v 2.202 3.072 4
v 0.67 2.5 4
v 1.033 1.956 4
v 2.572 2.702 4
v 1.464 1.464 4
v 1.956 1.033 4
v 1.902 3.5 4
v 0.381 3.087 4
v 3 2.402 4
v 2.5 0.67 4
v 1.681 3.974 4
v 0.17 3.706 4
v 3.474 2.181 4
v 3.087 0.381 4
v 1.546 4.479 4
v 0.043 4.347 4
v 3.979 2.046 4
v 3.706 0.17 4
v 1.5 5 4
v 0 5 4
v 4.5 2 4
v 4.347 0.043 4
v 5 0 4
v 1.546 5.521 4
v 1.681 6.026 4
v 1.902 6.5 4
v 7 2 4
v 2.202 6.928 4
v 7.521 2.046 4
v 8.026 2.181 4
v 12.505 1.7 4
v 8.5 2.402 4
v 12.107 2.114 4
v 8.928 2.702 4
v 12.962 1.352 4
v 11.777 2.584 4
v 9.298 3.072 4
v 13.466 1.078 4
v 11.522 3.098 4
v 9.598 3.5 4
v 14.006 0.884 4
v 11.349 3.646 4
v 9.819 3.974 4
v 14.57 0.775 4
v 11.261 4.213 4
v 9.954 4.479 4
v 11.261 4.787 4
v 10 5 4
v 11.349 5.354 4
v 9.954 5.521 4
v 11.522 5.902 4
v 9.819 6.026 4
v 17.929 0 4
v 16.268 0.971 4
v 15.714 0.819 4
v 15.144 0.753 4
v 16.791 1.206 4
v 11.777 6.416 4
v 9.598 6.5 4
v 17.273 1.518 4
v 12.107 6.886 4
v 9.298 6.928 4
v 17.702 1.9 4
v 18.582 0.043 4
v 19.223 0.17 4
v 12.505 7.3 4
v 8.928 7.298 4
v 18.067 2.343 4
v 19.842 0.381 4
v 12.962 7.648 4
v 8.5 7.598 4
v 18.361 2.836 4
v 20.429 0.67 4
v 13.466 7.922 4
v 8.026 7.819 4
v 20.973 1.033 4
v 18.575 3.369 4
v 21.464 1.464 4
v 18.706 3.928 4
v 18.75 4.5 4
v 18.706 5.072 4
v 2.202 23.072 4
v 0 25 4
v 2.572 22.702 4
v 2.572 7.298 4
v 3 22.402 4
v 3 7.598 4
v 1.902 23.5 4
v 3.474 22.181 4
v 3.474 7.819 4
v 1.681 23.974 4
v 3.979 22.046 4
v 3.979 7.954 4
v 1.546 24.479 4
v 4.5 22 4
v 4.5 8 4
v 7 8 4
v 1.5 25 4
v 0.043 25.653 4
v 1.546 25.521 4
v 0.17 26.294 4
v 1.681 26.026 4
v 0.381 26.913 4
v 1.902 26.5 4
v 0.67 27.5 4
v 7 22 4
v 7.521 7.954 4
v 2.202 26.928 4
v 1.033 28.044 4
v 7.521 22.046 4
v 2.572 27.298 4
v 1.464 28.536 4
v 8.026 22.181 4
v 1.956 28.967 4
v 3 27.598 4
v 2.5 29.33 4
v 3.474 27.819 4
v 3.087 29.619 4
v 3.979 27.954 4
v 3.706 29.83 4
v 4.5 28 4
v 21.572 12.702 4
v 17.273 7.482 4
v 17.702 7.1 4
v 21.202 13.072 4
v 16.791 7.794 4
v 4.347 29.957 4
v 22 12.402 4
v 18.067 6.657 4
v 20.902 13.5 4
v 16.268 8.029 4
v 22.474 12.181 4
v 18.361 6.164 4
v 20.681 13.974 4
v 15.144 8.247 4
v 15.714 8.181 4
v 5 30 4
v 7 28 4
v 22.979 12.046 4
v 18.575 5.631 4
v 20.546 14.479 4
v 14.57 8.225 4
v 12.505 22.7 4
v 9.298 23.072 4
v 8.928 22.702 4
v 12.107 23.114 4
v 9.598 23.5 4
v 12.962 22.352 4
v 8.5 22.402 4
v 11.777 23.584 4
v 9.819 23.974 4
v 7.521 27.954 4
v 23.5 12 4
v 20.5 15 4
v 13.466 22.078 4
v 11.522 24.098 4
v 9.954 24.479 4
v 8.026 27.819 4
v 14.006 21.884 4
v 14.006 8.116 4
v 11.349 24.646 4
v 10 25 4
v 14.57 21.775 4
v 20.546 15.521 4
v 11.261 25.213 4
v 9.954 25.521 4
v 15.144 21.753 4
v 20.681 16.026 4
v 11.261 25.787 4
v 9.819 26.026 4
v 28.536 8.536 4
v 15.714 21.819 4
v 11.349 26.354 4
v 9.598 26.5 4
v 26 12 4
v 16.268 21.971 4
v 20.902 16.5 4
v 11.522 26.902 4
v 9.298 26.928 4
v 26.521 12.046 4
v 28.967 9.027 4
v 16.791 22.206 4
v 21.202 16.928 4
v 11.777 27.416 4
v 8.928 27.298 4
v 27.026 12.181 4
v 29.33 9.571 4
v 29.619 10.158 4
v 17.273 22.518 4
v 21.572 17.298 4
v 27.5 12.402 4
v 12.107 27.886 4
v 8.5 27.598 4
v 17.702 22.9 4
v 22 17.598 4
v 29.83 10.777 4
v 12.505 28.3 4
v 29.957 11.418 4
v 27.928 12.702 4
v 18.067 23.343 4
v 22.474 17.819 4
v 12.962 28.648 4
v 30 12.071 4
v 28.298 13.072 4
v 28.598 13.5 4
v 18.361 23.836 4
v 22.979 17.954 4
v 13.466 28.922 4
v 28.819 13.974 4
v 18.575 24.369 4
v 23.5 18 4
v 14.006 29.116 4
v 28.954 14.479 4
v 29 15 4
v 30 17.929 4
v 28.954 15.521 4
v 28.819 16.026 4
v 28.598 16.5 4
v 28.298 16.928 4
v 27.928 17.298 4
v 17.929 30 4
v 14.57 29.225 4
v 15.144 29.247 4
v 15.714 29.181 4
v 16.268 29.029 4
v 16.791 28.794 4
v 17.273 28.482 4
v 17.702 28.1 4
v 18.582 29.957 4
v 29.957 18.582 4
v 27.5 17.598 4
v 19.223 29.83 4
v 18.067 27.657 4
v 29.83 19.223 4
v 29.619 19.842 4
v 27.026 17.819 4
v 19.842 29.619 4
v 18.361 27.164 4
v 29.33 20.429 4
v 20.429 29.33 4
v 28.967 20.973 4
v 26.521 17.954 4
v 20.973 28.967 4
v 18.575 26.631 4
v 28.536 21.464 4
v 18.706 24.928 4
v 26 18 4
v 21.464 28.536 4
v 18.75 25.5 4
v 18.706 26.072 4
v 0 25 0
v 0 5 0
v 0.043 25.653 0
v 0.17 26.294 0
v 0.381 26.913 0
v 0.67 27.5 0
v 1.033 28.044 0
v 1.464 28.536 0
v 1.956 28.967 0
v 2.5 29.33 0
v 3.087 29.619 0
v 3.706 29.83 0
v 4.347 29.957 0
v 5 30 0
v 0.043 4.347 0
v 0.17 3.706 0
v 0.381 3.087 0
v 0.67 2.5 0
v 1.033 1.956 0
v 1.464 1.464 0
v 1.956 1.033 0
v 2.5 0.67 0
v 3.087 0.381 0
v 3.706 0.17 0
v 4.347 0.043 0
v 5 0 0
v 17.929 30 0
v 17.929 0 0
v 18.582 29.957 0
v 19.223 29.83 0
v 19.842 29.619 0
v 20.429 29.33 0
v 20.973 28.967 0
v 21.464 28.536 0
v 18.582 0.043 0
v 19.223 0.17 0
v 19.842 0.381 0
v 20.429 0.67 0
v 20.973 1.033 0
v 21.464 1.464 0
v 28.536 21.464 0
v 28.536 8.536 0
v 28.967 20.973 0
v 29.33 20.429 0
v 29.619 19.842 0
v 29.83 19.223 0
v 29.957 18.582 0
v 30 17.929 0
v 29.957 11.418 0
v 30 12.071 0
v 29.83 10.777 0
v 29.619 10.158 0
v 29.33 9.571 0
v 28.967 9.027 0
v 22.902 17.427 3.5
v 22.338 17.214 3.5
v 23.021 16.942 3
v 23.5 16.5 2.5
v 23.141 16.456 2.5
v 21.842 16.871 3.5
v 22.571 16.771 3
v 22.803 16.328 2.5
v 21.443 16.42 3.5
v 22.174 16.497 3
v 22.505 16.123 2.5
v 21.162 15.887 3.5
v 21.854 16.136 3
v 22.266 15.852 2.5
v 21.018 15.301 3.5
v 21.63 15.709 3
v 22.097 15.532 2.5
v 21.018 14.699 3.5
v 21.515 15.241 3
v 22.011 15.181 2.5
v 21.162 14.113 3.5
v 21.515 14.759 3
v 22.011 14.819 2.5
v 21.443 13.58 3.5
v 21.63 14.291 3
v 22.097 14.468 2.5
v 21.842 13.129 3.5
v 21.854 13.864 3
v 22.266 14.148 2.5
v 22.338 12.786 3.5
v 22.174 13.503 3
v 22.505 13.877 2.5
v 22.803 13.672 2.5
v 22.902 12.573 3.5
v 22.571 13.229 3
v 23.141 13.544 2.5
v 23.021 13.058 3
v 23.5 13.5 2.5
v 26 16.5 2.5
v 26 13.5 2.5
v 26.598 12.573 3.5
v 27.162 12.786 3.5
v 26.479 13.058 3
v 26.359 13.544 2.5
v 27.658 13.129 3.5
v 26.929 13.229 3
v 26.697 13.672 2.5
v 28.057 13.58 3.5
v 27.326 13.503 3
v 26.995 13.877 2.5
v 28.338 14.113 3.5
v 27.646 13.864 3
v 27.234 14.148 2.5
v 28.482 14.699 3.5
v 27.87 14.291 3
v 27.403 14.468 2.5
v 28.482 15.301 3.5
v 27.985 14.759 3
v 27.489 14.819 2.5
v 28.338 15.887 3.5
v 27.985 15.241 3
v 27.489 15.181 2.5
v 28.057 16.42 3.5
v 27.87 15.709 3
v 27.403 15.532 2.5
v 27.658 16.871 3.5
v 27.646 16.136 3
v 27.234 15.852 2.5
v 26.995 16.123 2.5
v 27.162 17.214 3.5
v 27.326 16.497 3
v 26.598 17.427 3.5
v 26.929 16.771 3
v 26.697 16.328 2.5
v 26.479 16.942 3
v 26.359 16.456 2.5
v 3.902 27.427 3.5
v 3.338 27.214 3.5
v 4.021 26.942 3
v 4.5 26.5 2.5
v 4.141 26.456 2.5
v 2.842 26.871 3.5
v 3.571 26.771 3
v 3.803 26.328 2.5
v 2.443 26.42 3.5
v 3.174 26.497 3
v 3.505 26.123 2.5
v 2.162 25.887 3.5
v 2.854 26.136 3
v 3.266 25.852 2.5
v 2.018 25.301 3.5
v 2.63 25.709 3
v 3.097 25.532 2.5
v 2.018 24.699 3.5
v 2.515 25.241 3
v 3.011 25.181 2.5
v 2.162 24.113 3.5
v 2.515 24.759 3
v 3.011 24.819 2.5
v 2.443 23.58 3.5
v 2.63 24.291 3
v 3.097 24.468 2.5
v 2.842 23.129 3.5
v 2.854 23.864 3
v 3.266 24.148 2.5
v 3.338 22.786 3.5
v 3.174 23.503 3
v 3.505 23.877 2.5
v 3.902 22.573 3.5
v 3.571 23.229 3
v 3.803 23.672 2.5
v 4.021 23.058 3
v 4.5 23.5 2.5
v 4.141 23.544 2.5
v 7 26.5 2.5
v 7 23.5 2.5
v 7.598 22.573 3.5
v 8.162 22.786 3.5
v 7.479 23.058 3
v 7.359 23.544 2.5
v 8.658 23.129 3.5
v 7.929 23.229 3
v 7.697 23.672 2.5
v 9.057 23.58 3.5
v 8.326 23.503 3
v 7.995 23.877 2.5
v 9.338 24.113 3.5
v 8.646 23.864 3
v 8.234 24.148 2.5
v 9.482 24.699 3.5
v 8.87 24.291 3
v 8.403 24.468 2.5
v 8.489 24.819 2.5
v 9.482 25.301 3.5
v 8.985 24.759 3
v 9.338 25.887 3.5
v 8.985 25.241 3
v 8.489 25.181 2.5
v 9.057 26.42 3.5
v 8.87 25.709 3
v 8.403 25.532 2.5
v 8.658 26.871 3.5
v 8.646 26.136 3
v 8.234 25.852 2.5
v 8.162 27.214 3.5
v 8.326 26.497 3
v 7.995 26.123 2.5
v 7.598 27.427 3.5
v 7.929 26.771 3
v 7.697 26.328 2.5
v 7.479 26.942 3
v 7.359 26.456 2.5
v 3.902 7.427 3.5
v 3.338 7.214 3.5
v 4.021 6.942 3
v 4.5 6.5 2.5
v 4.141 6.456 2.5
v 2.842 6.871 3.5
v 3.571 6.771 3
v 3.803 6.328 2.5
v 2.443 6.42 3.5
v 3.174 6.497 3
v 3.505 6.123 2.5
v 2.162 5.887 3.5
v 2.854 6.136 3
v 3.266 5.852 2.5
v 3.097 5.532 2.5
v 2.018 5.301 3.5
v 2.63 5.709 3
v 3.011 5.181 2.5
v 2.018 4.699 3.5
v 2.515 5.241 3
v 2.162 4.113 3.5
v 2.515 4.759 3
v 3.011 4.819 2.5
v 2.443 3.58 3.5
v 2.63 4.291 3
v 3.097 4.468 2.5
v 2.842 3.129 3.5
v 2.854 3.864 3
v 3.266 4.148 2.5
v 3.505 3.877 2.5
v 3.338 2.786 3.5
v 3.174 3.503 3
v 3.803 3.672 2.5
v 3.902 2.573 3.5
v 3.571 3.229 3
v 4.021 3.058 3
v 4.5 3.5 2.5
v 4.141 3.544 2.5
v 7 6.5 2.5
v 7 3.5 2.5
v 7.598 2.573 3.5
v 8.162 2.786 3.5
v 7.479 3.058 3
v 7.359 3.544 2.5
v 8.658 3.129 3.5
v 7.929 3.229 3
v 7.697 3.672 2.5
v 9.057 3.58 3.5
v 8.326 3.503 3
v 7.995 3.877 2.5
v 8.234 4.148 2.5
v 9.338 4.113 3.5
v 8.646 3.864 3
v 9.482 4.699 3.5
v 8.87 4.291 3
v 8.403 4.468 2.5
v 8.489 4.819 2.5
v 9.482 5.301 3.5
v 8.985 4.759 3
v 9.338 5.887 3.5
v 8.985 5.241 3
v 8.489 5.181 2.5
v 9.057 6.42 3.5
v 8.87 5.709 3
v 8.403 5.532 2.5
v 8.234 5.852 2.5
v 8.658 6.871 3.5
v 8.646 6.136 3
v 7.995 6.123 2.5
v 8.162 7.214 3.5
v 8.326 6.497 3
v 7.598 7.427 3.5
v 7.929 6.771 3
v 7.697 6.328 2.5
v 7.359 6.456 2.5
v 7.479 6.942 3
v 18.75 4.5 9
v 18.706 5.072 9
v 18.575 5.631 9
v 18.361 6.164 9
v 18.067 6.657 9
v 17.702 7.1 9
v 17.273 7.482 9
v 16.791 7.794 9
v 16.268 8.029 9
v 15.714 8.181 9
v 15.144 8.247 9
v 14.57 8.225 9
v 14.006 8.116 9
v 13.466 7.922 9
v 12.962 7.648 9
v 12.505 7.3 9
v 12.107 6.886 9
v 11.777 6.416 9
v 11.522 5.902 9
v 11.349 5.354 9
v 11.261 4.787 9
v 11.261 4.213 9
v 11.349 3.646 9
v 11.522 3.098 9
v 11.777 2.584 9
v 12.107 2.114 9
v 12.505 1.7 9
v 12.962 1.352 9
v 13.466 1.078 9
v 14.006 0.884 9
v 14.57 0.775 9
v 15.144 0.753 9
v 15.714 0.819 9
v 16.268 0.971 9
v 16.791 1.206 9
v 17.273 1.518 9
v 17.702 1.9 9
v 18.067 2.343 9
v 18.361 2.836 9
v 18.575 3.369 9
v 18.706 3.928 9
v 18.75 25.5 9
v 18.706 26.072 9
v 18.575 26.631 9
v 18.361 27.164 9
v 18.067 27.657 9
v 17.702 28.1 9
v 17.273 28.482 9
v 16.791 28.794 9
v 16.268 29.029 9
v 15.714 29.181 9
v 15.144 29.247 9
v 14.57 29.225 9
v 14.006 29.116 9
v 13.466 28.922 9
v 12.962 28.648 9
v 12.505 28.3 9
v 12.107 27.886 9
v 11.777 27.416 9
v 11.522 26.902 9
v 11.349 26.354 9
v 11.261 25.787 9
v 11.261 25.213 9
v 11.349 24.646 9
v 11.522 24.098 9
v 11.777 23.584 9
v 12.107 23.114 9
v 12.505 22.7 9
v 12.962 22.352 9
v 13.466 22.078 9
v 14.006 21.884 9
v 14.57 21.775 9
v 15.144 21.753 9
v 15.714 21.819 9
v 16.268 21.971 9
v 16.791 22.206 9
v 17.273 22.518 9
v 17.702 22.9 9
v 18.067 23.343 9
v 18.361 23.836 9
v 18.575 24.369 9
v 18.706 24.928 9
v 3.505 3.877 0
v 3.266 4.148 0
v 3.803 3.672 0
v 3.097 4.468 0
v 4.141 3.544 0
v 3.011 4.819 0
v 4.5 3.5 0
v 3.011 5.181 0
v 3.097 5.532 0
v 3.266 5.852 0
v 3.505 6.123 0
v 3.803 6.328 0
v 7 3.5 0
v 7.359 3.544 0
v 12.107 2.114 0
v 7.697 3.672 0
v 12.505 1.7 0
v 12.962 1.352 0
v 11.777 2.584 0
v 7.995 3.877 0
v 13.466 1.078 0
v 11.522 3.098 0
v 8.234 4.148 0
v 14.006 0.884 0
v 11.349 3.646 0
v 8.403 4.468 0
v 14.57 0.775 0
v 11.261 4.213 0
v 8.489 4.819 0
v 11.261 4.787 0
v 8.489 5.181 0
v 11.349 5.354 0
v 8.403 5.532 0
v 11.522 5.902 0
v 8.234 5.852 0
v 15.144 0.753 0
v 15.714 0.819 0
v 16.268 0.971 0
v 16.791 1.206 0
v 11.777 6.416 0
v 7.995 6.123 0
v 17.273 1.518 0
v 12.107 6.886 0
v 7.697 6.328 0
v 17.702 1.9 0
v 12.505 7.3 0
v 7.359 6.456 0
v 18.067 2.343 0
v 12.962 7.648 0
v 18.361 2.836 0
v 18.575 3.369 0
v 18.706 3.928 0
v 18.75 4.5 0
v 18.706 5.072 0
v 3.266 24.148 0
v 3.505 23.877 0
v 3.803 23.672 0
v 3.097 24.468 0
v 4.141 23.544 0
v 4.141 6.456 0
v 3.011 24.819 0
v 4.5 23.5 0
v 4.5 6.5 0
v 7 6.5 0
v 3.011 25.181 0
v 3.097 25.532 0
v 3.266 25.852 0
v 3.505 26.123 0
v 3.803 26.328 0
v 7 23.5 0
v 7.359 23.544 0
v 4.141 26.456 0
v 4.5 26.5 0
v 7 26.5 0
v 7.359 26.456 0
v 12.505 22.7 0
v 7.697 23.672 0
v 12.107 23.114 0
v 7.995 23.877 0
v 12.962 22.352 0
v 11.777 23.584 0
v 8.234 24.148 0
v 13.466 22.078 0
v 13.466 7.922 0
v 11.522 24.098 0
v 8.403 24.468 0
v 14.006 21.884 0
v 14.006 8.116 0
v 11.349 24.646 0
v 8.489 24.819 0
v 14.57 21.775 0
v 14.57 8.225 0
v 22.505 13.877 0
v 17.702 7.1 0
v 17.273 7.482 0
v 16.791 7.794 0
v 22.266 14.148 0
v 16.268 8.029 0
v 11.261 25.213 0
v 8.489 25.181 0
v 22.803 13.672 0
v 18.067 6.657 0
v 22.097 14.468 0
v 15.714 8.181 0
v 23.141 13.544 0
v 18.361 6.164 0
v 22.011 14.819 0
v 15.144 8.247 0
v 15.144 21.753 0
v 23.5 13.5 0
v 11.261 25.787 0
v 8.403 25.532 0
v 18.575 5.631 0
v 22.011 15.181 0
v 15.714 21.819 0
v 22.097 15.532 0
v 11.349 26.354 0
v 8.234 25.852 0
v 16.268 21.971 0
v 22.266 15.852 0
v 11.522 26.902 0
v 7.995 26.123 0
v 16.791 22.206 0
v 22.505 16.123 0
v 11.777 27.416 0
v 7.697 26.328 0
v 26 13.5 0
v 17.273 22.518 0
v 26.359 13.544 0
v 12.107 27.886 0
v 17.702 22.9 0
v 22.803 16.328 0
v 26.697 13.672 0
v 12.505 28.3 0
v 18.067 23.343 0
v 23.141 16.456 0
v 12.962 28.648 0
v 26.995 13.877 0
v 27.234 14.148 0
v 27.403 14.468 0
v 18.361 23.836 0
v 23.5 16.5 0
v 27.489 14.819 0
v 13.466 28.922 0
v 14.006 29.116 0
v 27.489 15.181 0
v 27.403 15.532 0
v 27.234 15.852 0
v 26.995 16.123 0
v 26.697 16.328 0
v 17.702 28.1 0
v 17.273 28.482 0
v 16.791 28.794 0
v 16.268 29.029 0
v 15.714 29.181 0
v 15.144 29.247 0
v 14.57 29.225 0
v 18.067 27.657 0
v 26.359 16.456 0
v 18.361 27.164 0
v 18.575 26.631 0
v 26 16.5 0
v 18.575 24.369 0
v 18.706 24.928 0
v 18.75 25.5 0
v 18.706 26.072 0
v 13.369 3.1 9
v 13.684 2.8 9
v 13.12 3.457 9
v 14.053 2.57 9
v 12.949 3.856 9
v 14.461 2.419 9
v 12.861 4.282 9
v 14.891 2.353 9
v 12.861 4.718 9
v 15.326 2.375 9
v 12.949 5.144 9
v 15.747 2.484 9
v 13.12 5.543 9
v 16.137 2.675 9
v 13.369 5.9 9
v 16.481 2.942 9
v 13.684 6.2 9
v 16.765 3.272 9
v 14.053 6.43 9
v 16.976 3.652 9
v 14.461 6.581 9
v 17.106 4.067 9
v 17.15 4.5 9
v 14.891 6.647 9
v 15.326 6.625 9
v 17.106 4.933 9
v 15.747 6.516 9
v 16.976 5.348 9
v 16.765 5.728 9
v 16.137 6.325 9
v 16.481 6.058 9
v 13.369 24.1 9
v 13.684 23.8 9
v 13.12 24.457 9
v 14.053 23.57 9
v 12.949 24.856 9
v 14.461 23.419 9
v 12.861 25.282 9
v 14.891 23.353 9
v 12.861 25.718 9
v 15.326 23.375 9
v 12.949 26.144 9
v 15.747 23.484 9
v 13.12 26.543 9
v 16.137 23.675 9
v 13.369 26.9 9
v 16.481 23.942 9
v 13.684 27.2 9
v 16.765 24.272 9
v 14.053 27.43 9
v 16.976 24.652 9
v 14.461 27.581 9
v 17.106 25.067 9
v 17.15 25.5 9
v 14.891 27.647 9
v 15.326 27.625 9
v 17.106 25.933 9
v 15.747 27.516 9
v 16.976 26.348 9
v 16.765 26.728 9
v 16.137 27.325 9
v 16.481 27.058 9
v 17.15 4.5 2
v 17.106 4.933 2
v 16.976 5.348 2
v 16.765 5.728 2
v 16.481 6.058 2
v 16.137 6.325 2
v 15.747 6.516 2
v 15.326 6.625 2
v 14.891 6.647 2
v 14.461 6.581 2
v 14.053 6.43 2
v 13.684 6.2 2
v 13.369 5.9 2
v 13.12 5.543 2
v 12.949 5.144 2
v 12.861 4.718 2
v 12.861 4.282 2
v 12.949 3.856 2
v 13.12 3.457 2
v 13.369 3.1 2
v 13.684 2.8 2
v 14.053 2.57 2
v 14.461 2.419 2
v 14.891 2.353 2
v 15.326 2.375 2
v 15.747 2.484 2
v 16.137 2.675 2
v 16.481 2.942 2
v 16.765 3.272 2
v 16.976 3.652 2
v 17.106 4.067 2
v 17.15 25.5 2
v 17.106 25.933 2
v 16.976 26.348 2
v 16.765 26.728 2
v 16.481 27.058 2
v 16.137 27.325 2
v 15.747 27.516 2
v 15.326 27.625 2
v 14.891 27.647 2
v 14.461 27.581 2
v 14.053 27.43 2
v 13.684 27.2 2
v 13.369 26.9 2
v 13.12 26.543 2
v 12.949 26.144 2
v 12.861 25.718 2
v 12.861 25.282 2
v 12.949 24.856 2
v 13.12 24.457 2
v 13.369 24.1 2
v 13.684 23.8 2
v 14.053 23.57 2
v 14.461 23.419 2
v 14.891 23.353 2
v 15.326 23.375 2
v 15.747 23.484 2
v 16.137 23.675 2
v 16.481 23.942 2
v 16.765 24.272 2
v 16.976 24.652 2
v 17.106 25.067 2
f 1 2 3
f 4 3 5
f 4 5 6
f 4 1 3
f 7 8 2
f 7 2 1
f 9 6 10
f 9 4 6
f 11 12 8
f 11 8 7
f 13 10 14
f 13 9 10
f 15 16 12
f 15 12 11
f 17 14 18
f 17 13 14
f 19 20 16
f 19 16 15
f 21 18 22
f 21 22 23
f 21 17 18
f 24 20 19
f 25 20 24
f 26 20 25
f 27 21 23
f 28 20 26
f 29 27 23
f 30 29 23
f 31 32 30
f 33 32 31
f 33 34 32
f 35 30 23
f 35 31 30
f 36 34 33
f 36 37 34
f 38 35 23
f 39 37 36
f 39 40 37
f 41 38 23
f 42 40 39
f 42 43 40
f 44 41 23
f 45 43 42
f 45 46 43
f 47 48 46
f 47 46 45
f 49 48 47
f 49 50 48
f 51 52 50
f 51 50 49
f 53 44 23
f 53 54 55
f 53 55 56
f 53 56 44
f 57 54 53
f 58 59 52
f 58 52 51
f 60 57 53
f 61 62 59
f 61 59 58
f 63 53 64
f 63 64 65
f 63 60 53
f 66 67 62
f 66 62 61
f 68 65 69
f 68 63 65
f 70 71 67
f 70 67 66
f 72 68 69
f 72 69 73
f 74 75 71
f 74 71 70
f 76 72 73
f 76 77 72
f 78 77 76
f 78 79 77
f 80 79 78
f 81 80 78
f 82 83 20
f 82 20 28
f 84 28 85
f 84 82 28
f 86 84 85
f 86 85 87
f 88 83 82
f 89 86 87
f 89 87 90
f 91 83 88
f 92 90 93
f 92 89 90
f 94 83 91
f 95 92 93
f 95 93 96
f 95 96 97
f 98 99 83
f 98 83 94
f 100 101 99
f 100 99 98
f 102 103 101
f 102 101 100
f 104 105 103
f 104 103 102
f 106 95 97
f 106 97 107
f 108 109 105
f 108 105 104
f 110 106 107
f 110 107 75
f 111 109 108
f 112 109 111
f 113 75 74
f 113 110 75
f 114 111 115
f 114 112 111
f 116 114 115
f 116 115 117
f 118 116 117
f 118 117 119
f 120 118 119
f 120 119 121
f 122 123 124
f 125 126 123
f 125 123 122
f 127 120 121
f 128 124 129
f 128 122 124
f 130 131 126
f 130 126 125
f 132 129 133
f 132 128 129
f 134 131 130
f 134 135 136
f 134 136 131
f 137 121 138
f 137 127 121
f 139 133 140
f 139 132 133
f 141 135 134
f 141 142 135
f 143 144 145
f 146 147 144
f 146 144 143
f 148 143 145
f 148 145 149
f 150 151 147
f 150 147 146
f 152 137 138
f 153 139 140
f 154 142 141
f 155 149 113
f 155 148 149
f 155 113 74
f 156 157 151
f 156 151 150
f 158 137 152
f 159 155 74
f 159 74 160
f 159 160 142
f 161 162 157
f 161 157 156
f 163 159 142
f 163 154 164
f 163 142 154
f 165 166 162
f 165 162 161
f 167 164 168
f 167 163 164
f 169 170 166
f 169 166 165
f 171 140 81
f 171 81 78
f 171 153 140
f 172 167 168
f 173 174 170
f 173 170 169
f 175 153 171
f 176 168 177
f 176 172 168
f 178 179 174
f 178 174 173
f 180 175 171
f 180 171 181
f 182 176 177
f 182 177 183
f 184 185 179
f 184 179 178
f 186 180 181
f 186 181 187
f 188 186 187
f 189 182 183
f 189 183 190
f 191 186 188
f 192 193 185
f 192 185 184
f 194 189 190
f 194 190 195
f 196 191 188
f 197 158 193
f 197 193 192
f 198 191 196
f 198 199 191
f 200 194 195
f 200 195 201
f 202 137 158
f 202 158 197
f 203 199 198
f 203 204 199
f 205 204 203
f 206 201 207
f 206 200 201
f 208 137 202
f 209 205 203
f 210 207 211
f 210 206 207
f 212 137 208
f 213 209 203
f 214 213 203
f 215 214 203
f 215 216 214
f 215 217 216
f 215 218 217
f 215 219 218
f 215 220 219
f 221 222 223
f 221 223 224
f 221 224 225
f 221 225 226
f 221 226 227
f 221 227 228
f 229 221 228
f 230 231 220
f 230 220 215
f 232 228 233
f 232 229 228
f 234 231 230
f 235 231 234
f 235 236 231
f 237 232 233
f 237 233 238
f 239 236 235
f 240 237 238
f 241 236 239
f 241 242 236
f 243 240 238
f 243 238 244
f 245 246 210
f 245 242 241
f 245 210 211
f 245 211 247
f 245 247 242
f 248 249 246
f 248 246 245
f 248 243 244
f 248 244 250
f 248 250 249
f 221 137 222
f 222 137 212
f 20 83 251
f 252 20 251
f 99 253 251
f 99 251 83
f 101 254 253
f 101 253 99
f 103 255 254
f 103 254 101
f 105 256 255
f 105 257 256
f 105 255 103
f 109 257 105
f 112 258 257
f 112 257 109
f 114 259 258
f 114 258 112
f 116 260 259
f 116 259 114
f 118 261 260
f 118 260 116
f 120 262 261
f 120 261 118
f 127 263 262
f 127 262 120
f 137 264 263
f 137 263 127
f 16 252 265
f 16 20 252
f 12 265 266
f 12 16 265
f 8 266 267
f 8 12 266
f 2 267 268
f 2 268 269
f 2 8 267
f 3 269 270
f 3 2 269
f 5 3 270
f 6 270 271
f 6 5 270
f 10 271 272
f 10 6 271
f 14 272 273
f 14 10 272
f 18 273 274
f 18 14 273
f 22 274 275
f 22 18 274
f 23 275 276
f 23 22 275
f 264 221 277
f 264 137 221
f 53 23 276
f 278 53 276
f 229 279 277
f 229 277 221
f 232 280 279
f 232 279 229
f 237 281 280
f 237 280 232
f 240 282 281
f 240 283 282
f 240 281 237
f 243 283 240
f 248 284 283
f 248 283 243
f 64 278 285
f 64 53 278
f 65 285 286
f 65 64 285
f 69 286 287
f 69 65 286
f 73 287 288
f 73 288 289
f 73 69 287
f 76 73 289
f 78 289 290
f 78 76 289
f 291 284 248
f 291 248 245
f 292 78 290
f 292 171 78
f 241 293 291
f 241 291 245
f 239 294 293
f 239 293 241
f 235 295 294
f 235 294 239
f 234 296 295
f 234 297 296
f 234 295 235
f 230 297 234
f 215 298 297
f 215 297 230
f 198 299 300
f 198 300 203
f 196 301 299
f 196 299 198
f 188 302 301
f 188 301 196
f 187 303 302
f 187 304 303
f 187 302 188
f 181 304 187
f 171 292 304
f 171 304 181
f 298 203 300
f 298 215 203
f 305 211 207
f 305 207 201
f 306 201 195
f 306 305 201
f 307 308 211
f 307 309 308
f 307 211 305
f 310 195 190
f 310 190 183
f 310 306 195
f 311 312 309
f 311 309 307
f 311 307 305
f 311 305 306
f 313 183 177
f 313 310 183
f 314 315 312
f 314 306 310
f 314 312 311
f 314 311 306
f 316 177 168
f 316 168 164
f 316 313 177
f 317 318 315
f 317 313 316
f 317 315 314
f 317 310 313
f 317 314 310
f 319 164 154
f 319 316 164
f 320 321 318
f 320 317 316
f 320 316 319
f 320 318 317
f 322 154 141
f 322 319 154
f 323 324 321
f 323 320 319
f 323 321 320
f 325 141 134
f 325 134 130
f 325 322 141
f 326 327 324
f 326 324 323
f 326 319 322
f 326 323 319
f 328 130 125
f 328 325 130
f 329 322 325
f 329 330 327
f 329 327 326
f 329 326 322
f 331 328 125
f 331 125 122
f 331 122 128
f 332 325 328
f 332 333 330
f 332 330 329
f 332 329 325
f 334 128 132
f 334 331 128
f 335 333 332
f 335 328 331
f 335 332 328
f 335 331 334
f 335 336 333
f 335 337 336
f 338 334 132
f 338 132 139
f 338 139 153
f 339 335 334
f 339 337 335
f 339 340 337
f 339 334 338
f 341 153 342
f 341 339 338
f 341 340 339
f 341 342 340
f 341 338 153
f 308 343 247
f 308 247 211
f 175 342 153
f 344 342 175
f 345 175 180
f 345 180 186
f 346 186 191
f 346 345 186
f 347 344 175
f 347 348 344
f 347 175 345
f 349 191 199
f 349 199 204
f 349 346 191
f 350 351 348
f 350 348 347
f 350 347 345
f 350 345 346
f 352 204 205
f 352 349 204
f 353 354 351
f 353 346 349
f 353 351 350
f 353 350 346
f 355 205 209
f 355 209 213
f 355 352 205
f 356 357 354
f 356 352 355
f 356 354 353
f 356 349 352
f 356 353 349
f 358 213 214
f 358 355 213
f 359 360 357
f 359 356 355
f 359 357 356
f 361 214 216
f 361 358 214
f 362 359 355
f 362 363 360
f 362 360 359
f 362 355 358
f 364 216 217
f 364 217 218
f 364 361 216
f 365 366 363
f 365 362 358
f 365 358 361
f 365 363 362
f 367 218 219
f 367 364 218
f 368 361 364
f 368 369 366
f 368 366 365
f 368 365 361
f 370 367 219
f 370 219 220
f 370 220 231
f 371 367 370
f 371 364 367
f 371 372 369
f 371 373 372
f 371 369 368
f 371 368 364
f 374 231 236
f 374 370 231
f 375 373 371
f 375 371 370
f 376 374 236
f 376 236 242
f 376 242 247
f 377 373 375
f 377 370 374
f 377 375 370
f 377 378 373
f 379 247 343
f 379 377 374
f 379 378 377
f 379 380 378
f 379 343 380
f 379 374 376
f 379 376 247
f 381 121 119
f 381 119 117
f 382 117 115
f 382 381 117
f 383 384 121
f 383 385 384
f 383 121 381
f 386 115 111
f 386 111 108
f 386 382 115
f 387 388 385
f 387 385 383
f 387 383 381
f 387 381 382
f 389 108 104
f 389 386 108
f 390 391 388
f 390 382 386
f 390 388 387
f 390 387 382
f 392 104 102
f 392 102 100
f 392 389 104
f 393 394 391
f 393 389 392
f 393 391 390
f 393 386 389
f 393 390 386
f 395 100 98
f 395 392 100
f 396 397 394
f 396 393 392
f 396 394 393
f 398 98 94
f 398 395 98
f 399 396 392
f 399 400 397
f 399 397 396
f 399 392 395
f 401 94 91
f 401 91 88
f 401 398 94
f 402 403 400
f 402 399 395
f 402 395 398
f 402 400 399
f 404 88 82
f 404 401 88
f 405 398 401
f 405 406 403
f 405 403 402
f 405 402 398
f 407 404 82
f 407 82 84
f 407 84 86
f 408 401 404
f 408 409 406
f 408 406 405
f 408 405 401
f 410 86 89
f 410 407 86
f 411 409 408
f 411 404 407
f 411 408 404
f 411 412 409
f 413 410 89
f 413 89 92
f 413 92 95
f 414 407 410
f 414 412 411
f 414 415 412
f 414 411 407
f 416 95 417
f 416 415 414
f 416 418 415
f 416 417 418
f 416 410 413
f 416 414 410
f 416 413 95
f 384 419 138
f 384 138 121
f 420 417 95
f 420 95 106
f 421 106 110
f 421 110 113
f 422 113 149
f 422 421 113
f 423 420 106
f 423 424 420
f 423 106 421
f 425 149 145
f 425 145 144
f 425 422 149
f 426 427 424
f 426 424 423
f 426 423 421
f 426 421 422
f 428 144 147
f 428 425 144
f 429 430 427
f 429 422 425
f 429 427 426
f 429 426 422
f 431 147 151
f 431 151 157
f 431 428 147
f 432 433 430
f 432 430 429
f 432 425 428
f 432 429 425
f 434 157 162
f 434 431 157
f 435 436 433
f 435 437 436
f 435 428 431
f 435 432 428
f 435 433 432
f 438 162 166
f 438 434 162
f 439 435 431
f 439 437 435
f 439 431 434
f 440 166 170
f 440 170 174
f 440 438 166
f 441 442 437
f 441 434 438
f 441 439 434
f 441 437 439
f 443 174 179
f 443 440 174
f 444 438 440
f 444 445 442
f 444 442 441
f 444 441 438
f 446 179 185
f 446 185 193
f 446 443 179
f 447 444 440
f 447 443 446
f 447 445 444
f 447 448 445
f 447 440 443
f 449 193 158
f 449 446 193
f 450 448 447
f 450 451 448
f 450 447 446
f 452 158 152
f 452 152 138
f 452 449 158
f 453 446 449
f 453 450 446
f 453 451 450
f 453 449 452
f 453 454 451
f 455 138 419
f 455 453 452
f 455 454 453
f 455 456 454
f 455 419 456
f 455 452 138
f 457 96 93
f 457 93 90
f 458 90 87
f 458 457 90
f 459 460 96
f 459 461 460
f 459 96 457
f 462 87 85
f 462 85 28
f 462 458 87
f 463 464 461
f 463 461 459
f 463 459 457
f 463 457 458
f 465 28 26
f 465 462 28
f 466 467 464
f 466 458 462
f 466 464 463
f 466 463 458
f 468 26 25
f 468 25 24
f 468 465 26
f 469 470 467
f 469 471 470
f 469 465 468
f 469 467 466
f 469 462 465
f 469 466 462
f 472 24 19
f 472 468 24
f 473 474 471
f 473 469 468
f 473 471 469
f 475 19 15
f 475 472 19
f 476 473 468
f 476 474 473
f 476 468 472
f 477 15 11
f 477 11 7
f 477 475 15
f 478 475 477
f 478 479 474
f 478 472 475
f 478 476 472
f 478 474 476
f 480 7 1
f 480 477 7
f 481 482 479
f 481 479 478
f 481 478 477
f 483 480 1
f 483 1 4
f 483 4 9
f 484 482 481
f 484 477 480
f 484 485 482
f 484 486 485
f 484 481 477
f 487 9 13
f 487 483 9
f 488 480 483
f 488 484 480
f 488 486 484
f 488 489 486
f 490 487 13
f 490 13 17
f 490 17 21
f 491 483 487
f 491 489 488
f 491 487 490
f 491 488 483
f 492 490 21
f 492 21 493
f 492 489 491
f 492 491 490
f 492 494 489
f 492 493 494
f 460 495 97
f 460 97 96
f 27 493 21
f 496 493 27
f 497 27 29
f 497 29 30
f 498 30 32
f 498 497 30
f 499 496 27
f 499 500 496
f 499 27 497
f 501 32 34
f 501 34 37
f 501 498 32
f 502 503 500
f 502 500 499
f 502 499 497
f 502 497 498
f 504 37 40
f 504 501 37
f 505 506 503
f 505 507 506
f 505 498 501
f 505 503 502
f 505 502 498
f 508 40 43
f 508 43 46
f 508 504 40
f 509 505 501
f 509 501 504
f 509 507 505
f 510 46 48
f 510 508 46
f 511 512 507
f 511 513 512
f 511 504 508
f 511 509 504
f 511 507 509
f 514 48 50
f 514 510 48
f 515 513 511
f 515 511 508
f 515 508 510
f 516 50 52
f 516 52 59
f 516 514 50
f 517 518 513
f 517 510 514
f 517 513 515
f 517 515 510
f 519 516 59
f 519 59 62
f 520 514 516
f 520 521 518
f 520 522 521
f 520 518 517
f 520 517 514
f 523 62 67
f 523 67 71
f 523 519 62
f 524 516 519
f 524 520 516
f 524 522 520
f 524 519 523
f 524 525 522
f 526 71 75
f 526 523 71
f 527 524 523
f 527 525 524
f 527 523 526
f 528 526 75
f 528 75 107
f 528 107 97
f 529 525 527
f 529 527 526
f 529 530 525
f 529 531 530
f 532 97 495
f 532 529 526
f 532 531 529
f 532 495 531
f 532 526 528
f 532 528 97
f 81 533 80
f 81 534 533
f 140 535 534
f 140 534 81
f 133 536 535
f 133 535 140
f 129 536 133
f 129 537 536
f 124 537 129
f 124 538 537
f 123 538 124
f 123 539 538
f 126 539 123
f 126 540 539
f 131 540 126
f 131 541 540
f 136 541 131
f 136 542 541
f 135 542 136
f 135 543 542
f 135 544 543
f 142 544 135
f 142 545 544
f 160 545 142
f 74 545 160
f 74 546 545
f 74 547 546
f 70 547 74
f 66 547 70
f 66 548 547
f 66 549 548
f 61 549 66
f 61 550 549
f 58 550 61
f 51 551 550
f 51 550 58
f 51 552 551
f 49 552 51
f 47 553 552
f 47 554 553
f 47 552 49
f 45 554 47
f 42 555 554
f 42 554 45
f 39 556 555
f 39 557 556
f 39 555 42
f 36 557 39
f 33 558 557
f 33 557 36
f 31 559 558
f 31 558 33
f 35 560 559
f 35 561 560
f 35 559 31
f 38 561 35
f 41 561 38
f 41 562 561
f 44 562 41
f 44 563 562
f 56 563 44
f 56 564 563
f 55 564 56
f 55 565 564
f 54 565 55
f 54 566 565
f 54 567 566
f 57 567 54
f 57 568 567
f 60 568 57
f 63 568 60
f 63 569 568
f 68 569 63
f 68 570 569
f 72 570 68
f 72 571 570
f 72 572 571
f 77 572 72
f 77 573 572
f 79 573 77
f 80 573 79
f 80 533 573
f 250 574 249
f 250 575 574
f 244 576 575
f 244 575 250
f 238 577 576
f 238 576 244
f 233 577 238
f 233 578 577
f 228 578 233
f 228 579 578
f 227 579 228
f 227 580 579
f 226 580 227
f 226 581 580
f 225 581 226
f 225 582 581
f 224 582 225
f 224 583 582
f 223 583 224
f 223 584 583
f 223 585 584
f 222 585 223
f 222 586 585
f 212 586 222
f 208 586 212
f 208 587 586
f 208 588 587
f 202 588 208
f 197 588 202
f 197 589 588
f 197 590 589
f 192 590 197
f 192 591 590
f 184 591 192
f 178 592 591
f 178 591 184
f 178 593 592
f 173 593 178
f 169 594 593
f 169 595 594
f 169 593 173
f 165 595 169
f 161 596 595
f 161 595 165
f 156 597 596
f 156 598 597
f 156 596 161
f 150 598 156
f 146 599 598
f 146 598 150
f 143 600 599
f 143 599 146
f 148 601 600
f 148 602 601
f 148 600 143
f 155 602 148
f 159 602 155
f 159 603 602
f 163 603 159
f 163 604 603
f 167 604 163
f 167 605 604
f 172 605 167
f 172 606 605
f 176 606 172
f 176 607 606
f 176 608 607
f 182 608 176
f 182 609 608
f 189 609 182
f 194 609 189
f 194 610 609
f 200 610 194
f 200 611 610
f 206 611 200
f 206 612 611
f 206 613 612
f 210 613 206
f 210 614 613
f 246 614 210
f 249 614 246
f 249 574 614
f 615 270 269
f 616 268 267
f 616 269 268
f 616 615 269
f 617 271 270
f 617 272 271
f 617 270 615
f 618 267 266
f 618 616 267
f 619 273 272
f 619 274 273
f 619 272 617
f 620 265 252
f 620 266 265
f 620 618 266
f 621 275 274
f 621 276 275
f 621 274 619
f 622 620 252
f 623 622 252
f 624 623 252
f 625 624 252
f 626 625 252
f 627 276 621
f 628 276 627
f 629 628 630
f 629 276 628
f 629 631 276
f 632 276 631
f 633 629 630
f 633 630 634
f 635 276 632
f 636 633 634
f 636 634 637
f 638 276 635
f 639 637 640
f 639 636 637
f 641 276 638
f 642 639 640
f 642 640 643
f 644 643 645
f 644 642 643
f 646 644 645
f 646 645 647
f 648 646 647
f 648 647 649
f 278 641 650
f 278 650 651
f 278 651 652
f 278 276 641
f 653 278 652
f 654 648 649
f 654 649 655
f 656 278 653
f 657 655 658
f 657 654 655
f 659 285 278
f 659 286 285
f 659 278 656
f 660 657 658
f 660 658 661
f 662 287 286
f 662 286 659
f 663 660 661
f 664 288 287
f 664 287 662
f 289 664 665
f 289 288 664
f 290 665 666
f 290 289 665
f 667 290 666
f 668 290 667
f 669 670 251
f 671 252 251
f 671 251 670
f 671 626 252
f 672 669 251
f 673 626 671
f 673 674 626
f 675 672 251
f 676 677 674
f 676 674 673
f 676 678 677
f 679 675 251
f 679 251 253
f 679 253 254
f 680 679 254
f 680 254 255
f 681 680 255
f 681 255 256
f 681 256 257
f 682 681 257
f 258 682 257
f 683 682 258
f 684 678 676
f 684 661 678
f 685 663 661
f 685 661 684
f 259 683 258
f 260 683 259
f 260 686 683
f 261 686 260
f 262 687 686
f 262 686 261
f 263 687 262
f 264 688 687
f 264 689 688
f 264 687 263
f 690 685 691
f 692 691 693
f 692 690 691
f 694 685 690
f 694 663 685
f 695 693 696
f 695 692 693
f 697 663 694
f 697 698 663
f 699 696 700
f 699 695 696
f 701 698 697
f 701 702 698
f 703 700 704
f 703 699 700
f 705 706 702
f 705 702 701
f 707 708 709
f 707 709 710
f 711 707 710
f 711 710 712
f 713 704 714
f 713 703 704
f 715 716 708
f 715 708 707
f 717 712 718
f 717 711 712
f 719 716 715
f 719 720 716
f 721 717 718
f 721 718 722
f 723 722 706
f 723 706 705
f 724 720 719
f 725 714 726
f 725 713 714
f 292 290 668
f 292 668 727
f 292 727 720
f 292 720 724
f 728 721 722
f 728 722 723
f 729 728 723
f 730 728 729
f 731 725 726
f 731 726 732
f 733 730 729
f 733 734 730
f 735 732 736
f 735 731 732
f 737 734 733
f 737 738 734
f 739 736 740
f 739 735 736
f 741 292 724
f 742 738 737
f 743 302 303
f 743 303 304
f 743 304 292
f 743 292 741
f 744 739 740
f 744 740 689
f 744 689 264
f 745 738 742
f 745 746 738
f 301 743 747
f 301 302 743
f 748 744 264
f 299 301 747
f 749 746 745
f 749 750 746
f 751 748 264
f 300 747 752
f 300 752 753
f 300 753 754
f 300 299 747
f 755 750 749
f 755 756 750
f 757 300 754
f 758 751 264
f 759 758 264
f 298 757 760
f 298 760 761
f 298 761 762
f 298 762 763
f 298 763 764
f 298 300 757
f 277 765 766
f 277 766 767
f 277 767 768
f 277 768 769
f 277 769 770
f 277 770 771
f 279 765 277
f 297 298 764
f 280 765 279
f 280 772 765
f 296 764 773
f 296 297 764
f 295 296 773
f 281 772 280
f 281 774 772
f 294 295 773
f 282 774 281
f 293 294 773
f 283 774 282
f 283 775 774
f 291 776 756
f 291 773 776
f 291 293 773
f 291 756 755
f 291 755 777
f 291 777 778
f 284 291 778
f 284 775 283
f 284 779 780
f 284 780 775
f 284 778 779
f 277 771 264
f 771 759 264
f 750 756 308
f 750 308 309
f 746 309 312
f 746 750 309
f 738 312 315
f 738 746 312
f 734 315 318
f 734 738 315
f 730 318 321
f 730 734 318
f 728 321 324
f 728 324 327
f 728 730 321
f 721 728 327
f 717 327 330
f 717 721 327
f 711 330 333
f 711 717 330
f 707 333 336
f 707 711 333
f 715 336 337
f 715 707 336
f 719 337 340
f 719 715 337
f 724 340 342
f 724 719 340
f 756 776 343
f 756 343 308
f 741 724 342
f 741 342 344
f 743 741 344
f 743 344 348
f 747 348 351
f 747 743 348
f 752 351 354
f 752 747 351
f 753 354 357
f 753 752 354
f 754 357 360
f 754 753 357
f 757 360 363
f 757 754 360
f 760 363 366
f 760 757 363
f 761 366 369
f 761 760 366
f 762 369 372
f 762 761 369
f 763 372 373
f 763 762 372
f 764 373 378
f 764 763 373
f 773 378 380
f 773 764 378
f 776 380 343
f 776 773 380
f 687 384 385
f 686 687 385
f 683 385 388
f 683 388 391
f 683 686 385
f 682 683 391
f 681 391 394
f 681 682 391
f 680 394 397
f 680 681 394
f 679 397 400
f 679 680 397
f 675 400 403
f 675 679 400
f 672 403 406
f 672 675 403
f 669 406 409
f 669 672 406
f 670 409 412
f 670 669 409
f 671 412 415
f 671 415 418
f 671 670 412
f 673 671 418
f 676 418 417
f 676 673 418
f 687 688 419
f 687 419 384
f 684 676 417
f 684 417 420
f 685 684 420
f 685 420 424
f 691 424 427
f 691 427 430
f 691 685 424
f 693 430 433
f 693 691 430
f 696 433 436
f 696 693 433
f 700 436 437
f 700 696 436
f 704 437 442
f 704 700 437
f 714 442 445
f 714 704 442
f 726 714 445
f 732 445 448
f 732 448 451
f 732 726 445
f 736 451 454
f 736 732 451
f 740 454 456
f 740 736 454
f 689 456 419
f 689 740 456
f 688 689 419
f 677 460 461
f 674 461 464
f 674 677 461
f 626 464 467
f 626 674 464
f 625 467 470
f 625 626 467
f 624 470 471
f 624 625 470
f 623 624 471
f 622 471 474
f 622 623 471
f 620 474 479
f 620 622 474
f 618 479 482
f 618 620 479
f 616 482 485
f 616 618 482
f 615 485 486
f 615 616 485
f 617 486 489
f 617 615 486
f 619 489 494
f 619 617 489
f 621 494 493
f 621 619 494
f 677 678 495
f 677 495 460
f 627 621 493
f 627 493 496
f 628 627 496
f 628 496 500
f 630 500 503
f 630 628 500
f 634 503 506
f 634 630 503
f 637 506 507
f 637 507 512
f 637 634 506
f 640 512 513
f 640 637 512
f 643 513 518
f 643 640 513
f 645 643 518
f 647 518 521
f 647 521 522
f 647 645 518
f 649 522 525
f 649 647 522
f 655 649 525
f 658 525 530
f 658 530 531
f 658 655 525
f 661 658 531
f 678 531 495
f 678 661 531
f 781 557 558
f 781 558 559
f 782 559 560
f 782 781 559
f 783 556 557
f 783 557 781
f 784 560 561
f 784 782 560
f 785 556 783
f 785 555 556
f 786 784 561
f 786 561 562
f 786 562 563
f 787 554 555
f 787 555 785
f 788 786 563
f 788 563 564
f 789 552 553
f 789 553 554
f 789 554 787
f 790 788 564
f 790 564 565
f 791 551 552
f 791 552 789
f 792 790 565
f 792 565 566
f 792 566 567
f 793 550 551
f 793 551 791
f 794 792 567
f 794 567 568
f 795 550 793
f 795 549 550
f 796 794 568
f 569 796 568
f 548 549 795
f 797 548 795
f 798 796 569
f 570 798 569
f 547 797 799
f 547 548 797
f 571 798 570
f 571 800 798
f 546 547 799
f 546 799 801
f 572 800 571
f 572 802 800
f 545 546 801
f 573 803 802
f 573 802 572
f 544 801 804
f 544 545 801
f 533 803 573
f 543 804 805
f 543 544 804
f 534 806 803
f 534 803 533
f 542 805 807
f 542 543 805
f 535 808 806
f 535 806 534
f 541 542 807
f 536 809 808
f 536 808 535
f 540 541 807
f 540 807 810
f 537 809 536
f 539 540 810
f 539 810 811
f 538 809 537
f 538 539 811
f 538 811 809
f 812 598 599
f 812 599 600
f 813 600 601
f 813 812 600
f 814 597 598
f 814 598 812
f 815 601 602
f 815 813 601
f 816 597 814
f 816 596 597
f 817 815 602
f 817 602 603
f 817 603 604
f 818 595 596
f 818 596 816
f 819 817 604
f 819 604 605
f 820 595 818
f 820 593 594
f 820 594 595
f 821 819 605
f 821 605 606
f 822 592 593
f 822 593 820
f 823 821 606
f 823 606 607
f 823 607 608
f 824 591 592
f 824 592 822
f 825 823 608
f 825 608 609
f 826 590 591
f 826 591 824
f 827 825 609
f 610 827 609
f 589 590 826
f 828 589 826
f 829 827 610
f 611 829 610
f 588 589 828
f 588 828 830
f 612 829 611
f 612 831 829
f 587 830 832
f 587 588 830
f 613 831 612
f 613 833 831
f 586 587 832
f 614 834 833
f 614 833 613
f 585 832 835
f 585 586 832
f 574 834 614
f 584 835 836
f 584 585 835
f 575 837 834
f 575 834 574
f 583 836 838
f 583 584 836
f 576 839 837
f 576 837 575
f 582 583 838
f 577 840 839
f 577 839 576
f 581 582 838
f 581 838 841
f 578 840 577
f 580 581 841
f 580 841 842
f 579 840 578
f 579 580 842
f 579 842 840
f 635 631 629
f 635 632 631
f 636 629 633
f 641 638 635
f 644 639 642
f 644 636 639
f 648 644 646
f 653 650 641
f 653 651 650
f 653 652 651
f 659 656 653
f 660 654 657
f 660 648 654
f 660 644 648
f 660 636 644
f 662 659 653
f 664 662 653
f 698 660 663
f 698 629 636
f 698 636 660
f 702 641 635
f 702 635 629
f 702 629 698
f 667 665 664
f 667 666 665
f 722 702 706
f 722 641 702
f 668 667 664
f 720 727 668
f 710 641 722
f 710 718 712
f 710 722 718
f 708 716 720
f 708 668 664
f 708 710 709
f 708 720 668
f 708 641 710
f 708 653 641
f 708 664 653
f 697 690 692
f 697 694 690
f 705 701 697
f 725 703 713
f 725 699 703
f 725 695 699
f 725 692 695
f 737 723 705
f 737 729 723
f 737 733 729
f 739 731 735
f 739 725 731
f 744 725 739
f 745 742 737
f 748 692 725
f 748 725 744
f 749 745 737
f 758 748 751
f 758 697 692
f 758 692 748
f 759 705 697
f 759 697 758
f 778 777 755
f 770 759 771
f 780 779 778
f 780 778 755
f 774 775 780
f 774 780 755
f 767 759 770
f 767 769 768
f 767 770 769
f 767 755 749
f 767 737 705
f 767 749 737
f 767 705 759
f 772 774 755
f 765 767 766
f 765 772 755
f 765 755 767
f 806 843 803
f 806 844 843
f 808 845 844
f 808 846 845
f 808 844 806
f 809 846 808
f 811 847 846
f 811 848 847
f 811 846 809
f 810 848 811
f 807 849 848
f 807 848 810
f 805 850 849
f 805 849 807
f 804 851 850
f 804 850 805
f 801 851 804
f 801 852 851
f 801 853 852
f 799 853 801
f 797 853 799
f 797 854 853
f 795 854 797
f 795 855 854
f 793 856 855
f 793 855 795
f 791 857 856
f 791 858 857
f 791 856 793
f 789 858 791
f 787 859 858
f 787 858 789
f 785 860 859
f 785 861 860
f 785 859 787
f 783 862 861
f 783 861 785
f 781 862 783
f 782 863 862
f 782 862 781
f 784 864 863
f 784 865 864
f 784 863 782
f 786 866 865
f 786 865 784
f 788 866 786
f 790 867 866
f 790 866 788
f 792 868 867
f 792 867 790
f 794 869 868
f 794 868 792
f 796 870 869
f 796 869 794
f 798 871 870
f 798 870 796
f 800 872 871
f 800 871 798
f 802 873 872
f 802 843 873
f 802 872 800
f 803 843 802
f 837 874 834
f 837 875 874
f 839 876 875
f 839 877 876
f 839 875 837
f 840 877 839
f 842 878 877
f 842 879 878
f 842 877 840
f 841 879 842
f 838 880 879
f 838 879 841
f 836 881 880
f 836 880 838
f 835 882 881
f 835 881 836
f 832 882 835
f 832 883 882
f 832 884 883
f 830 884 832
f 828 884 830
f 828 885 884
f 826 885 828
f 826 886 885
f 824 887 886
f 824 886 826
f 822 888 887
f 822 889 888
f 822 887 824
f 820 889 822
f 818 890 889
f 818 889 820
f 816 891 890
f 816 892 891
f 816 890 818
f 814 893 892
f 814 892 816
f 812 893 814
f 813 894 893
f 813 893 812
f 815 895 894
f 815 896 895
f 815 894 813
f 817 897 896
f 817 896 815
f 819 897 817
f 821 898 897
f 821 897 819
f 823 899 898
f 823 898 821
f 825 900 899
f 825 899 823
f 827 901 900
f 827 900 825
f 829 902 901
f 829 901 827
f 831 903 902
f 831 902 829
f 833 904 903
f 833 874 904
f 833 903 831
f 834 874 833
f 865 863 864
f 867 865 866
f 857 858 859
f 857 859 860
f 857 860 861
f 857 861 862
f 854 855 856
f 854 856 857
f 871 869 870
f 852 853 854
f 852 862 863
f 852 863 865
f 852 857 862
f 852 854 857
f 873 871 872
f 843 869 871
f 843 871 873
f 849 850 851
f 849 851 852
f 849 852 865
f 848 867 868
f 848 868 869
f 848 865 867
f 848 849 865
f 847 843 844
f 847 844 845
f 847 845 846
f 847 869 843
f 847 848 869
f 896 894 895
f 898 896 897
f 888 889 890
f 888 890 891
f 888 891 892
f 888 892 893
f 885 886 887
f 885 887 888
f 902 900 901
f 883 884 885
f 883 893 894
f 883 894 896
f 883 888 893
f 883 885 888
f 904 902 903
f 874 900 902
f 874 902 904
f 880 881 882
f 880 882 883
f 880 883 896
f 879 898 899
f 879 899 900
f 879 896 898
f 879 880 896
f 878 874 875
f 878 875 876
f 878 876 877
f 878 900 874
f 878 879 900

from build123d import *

# Parameters (mm, degrees)
PAD_DEPTH       = 4
SKETCH001_R     = 3.75
PAD001_DEPTH    = 9
SKETCH002_R     = 2.15
POCKET_DEPTH    = 7
CHAMFER_SIZE    = 1.5
CHAMFER001_SIZE = 1.5
CHAMFER002_SIZE = 1.5
FILLET_R        = 5
FILLET001_R     = 5


with BuildPart() as part:
    # Sketch → Pad (new body)
    with BuildSketch(Plane.XY):
        Polygon((0, 0), (20, 0), (30, 10), (30, 20), (20, 30), (0, 30), align=None)
        with BuildLine():
            ThreePointArc((4.5, 6.5), (3, 5), (4.5, 3.5))
            Line((4.5, 3.5), (7, 3.5))
            ThreePointArc((7, 3.5), (8.5, 5), (7, 6.5))
            Line((7, 6.5), (4.5, 6.5))
        make_face(mode=Mode.SUBTRACT)
        with BuildLine():
            ThreePointArc((4.5, 26.5), (3, 25), (4.5, 23.5))
            Line((4.5, 23.5), (7, 23.5))
            ThreePointArc((7, 23.5), (8.5, 25), (7, 26.5))
            Line((7, 26.5), (4.5, 26.5))
        make_face(mode=Mode.SUBTRACT)
        with BuildLine():
            ThreePointArc((23.5, 16.5), (22, 15), (23.5, 13.5))
            Line((23.5, 13.5), (26, 13.5))
            ThreePointArc((26, 13.5), (27.5, 15), (26, 16.5))
            Line((26, 16.5), (23.5, 16.5))
        make_face(mode=Mode.SUBTRACT)
    extrude(amount=PAD_DEPTH)

    # Sketch001 → Pad001 (join)
    with BuildSketch(Plane.XY):
        with Locations((15, 25.5)):
            Circle(SKETCH001_R)
        with Locations((15, 4.5)):
            Circle(SKETCH001_R)
    extrude(amount=PAD001_DEPTH)

    # Sketch002 → Pocket (cut)
    with BuildSketch(Plane.XY.offset(9)):
        with Locations((15, 25.5)):
            Circle(SKETCH002_R)
        with Locations((15, 4.5)):
            Circle(SKETCH002_R)
    extrude(amount=-POCKET_DEPTH, mode=Mode.SUBTRACT)

    # Chamfer
    chamfer_edges = [part.edges().sort_by_distance(p)[0] for p in [
        (3, 5, 4),
        (5.75, 6.5, 4),
        (8.5, 5, 4),
        (5.75, 3.5, 4),
    ]]
    chamfer(chamfer_edges, length=CHAMFER_SIZE)

    # Chamfer001
    chamfer001_edges = [part.edges().sort_by_distance(p)[0] for p in [
        (3, 25, 4),
        (5.75, 26.5, 4),
        (8.5, 25, 4),
        (5.75, 23.5, 4),
    ]]
    chamfer(chamfer001_edges, length=CHAMFER001_SIZE)

    # Chamfer002
    chamfer002_edges = [part.edges().sort_by_distance(p)[0] for p in [
        (22, 15, 4),
        (24.75, 16.5, 4),
        (27.5, 15, 4),
        (24.75, 13.5, 4),
    ]]
    chamfer(chamfer002_edges, length=CHAMFER002_SIZE)

    # Fillet
    fillet_edges = [part.edges().sort_by_distance(p)[0] for p in [
        (0, 0, 2),
        (20, 0, 2),
        (30, 10, 2),
    ]]
    fillet(fillet_edges, radius=FILLET_R)

    # Fillet001
    fillet001_edges = [part.edges().sort_by_distance(p)[0] for p in [
        (30, 20, 2),
        (20, 30, 2),
        (0, 30, 2),
    ]]
    fillet(fillet001_edges, radius=FILLET001_R)


solid = part.part
